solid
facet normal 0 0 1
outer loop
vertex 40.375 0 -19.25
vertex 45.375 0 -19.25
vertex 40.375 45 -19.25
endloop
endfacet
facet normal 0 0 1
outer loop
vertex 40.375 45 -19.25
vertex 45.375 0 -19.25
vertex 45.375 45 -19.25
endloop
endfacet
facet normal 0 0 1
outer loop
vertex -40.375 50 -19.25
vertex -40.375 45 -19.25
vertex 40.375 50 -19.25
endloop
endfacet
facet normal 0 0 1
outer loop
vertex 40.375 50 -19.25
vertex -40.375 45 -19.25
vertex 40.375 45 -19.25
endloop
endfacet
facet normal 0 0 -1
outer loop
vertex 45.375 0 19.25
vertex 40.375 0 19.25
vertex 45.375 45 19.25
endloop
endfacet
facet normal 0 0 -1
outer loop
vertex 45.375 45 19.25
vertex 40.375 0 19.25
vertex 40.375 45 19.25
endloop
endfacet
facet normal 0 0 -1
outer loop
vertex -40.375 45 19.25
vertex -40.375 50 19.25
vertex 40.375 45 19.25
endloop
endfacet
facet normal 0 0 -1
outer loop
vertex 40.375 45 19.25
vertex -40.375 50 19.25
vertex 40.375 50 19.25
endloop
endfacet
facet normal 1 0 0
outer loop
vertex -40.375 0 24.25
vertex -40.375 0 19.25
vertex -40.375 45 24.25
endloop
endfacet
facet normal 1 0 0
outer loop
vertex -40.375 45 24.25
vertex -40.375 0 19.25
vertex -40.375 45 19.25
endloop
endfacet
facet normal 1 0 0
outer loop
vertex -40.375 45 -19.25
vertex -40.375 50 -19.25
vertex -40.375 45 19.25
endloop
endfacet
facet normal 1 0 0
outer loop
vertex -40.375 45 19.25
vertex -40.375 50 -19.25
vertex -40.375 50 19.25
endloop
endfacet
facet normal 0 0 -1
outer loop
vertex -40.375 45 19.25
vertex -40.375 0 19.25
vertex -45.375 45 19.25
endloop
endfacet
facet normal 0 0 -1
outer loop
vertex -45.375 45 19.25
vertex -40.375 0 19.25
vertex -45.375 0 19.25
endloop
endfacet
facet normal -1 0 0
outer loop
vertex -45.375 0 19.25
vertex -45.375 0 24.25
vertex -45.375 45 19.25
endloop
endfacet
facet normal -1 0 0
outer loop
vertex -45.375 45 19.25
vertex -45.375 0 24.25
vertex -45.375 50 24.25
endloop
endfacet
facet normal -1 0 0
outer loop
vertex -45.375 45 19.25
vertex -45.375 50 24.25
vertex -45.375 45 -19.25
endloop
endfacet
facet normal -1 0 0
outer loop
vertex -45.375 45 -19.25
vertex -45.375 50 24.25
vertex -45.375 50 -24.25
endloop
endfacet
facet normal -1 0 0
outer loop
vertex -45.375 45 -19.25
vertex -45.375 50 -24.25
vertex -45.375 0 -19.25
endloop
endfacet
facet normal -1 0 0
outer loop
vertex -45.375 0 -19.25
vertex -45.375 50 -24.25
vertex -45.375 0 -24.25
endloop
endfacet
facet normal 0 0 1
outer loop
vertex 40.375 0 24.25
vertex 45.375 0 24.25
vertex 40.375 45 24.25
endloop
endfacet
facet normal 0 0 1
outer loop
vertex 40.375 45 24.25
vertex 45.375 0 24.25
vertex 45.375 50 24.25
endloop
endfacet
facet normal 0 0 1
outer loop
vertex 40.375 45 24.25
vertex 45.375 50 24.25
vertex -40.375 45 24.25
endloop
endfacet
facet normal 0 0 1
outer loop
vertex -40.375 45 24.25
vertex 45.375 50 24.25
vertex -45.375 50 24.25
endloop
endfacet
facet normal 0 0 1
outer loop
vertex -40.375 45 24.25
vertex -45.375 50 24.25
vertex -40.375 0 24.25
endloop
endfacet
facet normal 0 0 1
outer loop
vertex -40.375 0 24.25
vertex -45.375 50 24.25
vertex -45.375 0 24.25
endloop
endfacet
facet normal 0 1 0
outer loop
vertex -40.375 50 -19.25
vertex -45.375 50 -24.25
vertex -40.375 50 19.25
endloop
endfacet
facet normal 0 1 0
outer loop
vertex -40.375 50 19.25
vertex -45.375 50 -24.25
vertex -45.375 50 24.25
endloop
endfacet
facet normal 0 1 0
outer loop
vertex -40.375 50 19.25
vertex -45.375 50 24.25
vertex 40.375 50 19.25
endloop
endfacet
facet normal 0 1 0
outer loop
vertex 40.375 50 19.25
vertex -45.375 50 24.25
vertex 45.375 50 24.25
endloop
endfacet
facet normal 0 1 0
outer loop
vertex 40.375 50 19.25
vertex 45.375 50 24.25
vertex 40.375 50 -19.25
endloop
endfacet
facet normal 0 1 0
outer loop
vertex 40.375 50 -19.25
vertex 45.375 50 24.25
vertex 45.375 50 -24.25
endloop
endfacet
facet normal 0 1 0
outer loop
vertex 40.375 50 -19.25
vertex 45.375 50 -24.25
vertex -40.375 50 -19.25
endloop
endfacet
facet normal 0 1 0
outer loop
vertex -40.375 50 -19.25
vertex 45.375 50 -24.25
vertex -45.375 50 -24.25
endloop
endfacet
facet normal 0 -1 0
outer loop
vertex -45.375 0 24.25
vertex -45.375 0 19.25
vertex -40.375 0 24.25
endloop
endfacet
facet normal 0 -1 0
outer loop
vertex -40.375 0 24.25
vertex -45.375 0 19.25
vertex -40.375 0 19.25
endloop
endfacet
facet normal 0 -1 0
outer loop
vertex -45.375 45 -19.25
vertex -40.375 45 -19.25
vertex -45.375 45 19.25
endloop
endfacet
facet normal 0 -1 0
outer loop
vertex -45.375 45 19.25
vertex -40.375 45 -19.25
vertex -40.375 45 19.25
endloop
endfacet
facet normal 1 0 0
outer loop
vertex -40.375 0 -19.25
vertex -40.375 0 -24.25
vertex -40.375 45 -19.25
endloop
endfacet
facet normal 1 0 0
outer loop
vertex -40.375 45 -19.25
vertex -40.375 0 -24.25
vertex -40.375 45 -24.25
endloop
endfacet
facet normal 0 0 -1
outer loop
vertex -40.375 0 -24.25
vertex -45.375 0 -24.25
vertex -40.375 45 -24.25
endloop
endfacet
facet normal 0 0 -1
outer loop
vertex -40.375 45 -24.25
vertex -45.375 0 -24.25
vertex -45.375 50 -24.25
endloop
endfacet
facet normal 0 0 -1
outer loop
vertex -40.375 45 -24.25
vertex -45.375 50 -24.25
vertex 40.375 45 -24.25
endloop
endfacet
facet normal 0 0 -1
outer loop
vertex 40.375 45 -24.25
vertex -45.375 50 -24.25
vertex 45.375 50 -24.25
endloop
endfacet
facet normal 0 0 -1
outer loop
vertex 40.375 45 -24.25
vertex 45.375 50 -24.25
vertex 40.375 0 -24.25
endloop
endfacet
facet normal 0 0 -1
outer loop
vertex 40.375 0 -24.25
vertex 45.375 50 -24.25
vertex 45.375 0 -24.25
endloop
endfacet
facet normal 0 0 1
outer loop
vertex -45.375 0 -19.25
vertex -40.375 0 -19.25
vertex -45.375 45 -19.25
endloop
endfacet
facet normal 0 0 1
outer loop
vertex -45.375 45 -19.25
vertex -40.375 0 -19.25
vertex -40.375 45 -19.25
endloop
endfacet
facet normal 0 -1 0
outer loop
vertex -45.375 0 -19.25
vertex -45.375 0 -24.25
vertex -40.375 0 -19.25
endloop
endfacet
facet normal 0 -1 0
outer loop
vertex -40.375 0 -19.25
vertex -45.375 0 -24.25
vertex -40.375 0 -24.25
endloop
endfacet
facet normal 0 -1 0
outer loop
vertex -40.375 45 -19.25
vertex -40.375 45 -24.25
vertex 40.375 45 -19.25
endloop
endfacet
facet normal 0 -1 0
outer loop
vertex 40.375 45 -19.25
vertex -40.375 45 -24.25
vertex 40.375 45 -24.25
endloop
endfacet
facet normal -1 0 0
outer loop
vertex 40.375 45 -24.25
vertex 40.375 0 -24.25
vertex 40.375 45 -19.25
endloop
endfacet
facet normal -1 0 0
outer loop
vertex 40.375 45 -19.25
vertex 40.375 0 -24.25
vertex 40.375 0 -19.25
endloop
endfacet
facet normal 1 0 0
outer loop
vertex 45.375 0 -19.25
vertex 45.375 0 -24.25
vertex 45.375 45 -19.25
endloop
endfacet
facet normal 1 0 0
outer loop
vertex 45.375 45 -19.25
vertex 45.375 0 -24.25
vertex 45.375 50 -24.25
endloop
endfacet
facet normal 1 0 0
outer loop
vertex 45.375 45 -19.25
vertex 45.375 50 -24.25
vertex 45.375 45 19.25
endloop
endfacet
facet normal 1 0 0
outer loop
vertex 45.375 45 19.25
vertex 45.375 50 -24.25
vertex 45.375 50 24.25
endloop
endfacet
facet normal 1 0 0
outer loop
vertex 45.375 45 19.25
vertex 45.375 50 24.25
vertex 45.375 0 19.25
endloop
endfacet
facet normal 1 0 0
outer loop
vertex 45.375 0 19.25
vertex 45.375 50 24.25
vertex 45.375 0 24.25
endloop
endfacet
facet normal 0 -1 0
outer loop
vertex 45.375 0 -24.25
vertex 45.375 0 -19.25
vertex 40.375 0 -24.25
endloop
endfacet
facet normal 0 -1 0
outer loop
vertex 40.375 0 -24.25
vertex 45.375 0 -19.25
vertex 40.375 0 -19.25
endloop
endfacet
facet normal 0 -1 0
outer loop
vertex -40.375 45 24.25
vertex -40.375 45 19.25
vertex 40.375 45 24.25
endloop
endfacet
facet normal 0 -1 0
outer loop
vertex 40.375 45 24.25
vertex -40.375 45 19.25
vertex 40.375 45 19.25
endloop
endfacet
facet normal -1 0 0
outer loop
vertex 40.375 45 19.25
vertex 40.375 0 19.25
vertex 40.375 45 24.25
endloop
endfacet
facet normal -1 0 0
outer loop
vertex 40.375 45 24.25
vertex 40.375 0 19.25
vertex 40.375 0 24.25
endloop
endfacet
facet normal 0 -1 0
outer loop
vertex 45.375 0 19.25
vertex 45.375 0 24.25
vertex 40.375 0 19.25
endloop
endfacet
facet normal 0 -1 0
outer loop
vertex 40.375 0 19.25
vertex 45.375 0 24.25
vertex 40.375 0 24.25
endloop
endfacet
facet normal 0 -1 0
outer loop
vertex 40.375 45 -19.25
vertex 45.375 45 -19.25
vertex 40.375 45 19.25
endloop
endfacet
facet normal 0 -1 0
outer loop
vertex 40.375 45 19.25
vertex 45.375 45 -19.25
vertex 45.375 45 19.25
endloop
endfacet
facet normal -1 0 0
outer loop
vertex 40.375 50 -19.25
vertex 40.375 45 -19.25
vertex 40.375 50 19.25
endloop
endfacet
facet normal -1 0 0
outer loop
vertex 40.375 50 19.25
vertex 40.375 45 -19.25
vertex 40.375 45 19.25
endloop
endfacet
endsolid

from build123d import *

# Parameters (mm, degrees)
SKETCH1_W               = 5
SKETCH1_H               = 5
BOSS_EXTRUDE1_DEPTH     = 50
BOSS_EXTRUDE1_2_DEPTH   = 50
BOSS_EXTRUDE1_3_DEPTH   = 50
BOSS_EXTRUDE1_4_DEPTH   = 50
BOSS_EXTRUDE2_OUTLINE_W = 5
BOSS_EXTRUDE2_OUTLINE_H = 5
BOSS_EXTRUDE2_DEPTH     = 80.75
SKETCH3_W               = 5
SKETCH3_H               = 5
BOSS_EXTRUDE3_DEPTH     = 38.5


# Read off the part's stored shape, not the designer's step: Boss-Extrude2
with BuildPart() as part:
    # Sketch1 → Boss-Extrude1 (new body)
    with BuildSketch(Plane(origin=(0, 0, 0), x_dir=(1, 0, 0), z_dir=(0, 1, 0))):
        with Locations((-42.875, 21.75)):
            Rectangle(SKETCH1_W, SKETCH1_H)
    extrude(amount=BOSS_EXTRUDE1_DEPTH)



with BuildPart() as body_2:
    # Sketch1 → Boss-Extrude1 2 (new body)
    with BuildSketch(Plane(origin=(0, 0, 0), x_dir=(1, 0, 0), z_dir=(0, 1, 0))):
        with Locations((-42.875, -21.75)):
            Rectangle(SKETCH1_W, SKETCH1_H)
    extrude(amount=BOSS_EXTRUDE1_2_DEPTH)


with BuildPart() as body_3:
    # Sketch1 → Boss-Extrude1 3 (new body)
    with BuildSketch(Plane(origin=(0, 0, 0), x_dir=(1, 0, 0), z_dir=(0, 1, 0))):
        with Locations((42.875, 21.75)):
            Rectangle(SKETCH1_W, SKETCH1_H)
    extrude(amount=BOSS_EXTRUDE1_3_DEPTH)


with BuildPart() as body_4:
    # Sketch1 → Boss-Extrude1 4 (new body)
    with BuildSketch(Plane(origin=(0, 0, 0), x_dir=(1, 0, 0), z_dir=(0, 1, 0))):
        with Locations((42.875, -21.75)):
            Rectangle(SKETCH1_W, SKETCH1_H)
    extrude(amount=BOSS_EXTRUDE1_4_DEPTH)


with BuildPart() as part_1:
    add(part.part)

    add(body_3.part)  # Boss-Extrude2 merges body 3
    # Boss-Extrude2 outline → Boss-Extrude2 (add)
    with BuildSketch(Plane(origin=(-40.375, 0, 0), x_dir=(0, 0, -1), z_dir=(1, 0, 0))):
        with Locations((-21.75, 47.5)):
            Rectangle(BOSS_EXTRUDE2_OUTLINE_W, BOSS_EXTRUDE2_OUTLINE_H)
        with Locations((21.75, 47.5)):
            Rectangle(BOSS_EXTRUDE2_OUTLINE_W, BOSS_EXTRUDE2_OUTLINE_H)
    extrude(amount=BOSS_EXTRUDE2_DEPTH)


    add(body_2.part)  # Boss-Extrude3 merges body 2

    add(body_4.part)  # Boss-Extrude3 merges body 4
    # Sketch3 → Boss-Extrude3 (add)
    with BuildSketch(Plane.XY.offset(-19.25)):
        with Locations((-42.875, 47.5)):
            Rectangle(SKETCH3_W, SKETCH3_H)
        with Locations((42.875, 47.5)):
            Rectangle(SKETCH3_W, SKETCH3_H)
    extrude(amount=BOSS_EXTRUDE3_DEPTH)


solid = part_1.part
